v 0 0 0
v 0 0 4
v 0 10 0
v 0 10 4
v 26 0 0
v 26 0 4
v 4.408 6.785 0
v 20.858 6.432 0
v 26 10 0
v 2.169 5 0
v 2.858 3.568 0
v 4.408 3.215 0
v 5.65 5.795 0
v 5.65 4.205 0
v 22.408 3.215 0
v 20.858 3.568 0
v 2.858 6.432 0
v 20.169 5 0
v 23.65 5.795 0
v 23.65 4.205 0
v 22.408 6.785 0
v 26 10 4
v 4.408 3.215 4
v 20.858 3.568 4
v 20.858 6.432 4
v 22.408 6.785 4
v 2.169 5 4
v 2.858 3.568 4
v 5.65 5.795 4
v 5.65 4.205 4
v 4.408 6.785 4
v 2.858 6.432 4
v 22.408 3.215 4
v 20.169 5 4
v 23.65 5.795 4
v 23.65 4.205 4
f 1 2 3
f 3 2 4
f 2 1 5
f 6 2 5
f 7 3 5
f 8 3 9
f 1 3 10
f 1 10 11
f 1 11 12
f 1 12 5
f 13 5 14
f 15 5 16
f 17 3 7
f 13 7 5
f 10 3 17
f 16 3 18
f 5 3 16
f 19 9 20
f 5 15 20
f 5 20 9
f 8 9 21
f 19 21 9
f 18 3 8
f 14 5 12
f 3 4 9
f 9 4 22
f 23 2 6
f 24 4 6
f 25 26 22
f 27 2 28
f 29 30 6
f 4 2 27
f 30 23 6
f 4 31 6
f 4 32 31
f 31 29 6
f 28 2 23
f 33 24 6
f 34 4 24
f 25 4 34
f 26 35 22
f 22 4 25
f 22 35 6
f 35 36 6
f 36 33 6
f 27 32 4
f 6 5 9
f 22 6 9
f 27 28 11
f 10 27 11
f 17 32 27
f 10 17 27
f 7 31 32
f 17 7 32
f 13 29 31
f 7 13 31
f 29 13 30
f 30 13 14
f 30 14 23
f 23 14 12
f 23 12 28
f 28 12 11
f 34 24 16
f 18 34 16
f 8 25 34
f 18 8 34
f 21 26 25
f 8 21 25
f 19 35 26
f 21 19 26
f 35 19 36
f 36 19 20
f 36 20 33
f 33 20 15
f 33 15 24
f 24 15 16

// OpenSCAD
// file: configuration.scad
// PRUSA Mendel  
// Configuration file
// GNU GPL v2
// Josef Průša
// josefprusa@me.com
// prusadjs.cz
// http://www.reprap.org/wiki/Prusa_Mendel
// http://github.com/prusajr/PrusaMendel

// PLEASE SELECT ONE OF THE CONFIGURATIONS BELOW
// BY UN-COMMENTING IT

variant=0; //0 for metric
//variant=1; //1 for SAE
if(variant==0){
echo("variant: metric");
}else if(variant==1){
echo("variant: sae");
} else{
echo("WARNING: INVALID CONFIGURATION");
}


vars=[
//[m8_dia, m8_nut, m4_dia, m4_nut, m3_dia, m3_nut, bush_dia, mot_shaft, bush_rod, bush_outerdia, bush_length]
[8.3,16.4,4.3,9,3.3,7,11,5.3,8,16,11],//metric
[9,15.7,5.5,10.6,5.5,10.6,11.5,5.3,7.9375,16,11]//SAE
];

//BUSHING TYPE Can generate three versions
// 1 - regular old ones
// 2 - helical ones
// 3 - holders for brass or any other bought bushings
bushing_type = 2;

//Round corner diameter
round_corner_diameter = 8;

//X end parameters
axis_diameter_real = 4;
axis_diameter_larger = 4.2 ;
pressure_pad_height = 0.7;

//Thin wall size
layer_height = 0.4;
perimeter_width_over_thicknes = 1.6;
infill_widht_over_thickness = 1.55;
thin_wall = 2*(perimeter_width_over_thicknes*layer_height+infill_widht_over_thickness*layer_height);
if(thin_wall<2){
	echo("Check thin wall size, its below 2mm!");
}
echo(thin_wall);

//DO NOT TOUCH THIS SECTION!
m8_diameter = vars[variant][0];
m8_nut_diameter = vars[variant][1];
m4_diameter = vars[variant][2];
m4_nut_diameter = vars[variant][3];
m3_diameter = vars[variant][4];
m3_nut_diameter = vars[variant][5];
bushing_diameter = vars[variant][6];
motor_shaft=vars[variant][7];
bushing_rodsize = vars[variant][8];
bushing_outerDiameter = vars[variant][9];
bushing_lenght = vars[variant][10];


// MINI-HUXLEY VERSION (TODO, just place holder)
// include <configuration-huxley.scad>

// MEGA VERSION (TODO, just place holder)
// include <configuration-mega.scad>


// Some basic functions, probably should be somewhere else
module roundcorner(diameter){
	difference(){
		cube(size = [diameter,diameter,99], center = false);
		translate(v = [diameter, diameter, 0]) cylinder(h = 100, r=diameter, center=true);
	}
}
module polyhole(h, d) {
    n = max(round(2 * d),3);
    rotate([0,0,180])
        cylinder(h = h, r = (d / 2) / cos (180 / n), $fn = n);
}
// main file
// PRUSA Mendel  
// Belt clamp
// GNU GPL v2
// Josef Průša
// josefprusa@me.com
// prusadjs.cz
// http://www.reprap.org/wiki/Prusa_Mendel
// http://github.com/prusajr/PrusaMendel

include <configuration.scad>

/**
 * @name Belt clamp
 * @category Printed
 */ 

module beltclamp(){
difference(){
cube([26,10,4]);
translate(v = [4, 5, 0]){
	//cylinder(h=10, r=m3_diameter/2, $fn=9, center=true);
	polyhole(10,m3_diameter);
	translate(v = [18, 0, 0])
		//cylinder(h=10, r=m3_diameter/2, $fn=9, center=true);
		polyhole(10,m3_diameter);
}}
}
beltclamp();
